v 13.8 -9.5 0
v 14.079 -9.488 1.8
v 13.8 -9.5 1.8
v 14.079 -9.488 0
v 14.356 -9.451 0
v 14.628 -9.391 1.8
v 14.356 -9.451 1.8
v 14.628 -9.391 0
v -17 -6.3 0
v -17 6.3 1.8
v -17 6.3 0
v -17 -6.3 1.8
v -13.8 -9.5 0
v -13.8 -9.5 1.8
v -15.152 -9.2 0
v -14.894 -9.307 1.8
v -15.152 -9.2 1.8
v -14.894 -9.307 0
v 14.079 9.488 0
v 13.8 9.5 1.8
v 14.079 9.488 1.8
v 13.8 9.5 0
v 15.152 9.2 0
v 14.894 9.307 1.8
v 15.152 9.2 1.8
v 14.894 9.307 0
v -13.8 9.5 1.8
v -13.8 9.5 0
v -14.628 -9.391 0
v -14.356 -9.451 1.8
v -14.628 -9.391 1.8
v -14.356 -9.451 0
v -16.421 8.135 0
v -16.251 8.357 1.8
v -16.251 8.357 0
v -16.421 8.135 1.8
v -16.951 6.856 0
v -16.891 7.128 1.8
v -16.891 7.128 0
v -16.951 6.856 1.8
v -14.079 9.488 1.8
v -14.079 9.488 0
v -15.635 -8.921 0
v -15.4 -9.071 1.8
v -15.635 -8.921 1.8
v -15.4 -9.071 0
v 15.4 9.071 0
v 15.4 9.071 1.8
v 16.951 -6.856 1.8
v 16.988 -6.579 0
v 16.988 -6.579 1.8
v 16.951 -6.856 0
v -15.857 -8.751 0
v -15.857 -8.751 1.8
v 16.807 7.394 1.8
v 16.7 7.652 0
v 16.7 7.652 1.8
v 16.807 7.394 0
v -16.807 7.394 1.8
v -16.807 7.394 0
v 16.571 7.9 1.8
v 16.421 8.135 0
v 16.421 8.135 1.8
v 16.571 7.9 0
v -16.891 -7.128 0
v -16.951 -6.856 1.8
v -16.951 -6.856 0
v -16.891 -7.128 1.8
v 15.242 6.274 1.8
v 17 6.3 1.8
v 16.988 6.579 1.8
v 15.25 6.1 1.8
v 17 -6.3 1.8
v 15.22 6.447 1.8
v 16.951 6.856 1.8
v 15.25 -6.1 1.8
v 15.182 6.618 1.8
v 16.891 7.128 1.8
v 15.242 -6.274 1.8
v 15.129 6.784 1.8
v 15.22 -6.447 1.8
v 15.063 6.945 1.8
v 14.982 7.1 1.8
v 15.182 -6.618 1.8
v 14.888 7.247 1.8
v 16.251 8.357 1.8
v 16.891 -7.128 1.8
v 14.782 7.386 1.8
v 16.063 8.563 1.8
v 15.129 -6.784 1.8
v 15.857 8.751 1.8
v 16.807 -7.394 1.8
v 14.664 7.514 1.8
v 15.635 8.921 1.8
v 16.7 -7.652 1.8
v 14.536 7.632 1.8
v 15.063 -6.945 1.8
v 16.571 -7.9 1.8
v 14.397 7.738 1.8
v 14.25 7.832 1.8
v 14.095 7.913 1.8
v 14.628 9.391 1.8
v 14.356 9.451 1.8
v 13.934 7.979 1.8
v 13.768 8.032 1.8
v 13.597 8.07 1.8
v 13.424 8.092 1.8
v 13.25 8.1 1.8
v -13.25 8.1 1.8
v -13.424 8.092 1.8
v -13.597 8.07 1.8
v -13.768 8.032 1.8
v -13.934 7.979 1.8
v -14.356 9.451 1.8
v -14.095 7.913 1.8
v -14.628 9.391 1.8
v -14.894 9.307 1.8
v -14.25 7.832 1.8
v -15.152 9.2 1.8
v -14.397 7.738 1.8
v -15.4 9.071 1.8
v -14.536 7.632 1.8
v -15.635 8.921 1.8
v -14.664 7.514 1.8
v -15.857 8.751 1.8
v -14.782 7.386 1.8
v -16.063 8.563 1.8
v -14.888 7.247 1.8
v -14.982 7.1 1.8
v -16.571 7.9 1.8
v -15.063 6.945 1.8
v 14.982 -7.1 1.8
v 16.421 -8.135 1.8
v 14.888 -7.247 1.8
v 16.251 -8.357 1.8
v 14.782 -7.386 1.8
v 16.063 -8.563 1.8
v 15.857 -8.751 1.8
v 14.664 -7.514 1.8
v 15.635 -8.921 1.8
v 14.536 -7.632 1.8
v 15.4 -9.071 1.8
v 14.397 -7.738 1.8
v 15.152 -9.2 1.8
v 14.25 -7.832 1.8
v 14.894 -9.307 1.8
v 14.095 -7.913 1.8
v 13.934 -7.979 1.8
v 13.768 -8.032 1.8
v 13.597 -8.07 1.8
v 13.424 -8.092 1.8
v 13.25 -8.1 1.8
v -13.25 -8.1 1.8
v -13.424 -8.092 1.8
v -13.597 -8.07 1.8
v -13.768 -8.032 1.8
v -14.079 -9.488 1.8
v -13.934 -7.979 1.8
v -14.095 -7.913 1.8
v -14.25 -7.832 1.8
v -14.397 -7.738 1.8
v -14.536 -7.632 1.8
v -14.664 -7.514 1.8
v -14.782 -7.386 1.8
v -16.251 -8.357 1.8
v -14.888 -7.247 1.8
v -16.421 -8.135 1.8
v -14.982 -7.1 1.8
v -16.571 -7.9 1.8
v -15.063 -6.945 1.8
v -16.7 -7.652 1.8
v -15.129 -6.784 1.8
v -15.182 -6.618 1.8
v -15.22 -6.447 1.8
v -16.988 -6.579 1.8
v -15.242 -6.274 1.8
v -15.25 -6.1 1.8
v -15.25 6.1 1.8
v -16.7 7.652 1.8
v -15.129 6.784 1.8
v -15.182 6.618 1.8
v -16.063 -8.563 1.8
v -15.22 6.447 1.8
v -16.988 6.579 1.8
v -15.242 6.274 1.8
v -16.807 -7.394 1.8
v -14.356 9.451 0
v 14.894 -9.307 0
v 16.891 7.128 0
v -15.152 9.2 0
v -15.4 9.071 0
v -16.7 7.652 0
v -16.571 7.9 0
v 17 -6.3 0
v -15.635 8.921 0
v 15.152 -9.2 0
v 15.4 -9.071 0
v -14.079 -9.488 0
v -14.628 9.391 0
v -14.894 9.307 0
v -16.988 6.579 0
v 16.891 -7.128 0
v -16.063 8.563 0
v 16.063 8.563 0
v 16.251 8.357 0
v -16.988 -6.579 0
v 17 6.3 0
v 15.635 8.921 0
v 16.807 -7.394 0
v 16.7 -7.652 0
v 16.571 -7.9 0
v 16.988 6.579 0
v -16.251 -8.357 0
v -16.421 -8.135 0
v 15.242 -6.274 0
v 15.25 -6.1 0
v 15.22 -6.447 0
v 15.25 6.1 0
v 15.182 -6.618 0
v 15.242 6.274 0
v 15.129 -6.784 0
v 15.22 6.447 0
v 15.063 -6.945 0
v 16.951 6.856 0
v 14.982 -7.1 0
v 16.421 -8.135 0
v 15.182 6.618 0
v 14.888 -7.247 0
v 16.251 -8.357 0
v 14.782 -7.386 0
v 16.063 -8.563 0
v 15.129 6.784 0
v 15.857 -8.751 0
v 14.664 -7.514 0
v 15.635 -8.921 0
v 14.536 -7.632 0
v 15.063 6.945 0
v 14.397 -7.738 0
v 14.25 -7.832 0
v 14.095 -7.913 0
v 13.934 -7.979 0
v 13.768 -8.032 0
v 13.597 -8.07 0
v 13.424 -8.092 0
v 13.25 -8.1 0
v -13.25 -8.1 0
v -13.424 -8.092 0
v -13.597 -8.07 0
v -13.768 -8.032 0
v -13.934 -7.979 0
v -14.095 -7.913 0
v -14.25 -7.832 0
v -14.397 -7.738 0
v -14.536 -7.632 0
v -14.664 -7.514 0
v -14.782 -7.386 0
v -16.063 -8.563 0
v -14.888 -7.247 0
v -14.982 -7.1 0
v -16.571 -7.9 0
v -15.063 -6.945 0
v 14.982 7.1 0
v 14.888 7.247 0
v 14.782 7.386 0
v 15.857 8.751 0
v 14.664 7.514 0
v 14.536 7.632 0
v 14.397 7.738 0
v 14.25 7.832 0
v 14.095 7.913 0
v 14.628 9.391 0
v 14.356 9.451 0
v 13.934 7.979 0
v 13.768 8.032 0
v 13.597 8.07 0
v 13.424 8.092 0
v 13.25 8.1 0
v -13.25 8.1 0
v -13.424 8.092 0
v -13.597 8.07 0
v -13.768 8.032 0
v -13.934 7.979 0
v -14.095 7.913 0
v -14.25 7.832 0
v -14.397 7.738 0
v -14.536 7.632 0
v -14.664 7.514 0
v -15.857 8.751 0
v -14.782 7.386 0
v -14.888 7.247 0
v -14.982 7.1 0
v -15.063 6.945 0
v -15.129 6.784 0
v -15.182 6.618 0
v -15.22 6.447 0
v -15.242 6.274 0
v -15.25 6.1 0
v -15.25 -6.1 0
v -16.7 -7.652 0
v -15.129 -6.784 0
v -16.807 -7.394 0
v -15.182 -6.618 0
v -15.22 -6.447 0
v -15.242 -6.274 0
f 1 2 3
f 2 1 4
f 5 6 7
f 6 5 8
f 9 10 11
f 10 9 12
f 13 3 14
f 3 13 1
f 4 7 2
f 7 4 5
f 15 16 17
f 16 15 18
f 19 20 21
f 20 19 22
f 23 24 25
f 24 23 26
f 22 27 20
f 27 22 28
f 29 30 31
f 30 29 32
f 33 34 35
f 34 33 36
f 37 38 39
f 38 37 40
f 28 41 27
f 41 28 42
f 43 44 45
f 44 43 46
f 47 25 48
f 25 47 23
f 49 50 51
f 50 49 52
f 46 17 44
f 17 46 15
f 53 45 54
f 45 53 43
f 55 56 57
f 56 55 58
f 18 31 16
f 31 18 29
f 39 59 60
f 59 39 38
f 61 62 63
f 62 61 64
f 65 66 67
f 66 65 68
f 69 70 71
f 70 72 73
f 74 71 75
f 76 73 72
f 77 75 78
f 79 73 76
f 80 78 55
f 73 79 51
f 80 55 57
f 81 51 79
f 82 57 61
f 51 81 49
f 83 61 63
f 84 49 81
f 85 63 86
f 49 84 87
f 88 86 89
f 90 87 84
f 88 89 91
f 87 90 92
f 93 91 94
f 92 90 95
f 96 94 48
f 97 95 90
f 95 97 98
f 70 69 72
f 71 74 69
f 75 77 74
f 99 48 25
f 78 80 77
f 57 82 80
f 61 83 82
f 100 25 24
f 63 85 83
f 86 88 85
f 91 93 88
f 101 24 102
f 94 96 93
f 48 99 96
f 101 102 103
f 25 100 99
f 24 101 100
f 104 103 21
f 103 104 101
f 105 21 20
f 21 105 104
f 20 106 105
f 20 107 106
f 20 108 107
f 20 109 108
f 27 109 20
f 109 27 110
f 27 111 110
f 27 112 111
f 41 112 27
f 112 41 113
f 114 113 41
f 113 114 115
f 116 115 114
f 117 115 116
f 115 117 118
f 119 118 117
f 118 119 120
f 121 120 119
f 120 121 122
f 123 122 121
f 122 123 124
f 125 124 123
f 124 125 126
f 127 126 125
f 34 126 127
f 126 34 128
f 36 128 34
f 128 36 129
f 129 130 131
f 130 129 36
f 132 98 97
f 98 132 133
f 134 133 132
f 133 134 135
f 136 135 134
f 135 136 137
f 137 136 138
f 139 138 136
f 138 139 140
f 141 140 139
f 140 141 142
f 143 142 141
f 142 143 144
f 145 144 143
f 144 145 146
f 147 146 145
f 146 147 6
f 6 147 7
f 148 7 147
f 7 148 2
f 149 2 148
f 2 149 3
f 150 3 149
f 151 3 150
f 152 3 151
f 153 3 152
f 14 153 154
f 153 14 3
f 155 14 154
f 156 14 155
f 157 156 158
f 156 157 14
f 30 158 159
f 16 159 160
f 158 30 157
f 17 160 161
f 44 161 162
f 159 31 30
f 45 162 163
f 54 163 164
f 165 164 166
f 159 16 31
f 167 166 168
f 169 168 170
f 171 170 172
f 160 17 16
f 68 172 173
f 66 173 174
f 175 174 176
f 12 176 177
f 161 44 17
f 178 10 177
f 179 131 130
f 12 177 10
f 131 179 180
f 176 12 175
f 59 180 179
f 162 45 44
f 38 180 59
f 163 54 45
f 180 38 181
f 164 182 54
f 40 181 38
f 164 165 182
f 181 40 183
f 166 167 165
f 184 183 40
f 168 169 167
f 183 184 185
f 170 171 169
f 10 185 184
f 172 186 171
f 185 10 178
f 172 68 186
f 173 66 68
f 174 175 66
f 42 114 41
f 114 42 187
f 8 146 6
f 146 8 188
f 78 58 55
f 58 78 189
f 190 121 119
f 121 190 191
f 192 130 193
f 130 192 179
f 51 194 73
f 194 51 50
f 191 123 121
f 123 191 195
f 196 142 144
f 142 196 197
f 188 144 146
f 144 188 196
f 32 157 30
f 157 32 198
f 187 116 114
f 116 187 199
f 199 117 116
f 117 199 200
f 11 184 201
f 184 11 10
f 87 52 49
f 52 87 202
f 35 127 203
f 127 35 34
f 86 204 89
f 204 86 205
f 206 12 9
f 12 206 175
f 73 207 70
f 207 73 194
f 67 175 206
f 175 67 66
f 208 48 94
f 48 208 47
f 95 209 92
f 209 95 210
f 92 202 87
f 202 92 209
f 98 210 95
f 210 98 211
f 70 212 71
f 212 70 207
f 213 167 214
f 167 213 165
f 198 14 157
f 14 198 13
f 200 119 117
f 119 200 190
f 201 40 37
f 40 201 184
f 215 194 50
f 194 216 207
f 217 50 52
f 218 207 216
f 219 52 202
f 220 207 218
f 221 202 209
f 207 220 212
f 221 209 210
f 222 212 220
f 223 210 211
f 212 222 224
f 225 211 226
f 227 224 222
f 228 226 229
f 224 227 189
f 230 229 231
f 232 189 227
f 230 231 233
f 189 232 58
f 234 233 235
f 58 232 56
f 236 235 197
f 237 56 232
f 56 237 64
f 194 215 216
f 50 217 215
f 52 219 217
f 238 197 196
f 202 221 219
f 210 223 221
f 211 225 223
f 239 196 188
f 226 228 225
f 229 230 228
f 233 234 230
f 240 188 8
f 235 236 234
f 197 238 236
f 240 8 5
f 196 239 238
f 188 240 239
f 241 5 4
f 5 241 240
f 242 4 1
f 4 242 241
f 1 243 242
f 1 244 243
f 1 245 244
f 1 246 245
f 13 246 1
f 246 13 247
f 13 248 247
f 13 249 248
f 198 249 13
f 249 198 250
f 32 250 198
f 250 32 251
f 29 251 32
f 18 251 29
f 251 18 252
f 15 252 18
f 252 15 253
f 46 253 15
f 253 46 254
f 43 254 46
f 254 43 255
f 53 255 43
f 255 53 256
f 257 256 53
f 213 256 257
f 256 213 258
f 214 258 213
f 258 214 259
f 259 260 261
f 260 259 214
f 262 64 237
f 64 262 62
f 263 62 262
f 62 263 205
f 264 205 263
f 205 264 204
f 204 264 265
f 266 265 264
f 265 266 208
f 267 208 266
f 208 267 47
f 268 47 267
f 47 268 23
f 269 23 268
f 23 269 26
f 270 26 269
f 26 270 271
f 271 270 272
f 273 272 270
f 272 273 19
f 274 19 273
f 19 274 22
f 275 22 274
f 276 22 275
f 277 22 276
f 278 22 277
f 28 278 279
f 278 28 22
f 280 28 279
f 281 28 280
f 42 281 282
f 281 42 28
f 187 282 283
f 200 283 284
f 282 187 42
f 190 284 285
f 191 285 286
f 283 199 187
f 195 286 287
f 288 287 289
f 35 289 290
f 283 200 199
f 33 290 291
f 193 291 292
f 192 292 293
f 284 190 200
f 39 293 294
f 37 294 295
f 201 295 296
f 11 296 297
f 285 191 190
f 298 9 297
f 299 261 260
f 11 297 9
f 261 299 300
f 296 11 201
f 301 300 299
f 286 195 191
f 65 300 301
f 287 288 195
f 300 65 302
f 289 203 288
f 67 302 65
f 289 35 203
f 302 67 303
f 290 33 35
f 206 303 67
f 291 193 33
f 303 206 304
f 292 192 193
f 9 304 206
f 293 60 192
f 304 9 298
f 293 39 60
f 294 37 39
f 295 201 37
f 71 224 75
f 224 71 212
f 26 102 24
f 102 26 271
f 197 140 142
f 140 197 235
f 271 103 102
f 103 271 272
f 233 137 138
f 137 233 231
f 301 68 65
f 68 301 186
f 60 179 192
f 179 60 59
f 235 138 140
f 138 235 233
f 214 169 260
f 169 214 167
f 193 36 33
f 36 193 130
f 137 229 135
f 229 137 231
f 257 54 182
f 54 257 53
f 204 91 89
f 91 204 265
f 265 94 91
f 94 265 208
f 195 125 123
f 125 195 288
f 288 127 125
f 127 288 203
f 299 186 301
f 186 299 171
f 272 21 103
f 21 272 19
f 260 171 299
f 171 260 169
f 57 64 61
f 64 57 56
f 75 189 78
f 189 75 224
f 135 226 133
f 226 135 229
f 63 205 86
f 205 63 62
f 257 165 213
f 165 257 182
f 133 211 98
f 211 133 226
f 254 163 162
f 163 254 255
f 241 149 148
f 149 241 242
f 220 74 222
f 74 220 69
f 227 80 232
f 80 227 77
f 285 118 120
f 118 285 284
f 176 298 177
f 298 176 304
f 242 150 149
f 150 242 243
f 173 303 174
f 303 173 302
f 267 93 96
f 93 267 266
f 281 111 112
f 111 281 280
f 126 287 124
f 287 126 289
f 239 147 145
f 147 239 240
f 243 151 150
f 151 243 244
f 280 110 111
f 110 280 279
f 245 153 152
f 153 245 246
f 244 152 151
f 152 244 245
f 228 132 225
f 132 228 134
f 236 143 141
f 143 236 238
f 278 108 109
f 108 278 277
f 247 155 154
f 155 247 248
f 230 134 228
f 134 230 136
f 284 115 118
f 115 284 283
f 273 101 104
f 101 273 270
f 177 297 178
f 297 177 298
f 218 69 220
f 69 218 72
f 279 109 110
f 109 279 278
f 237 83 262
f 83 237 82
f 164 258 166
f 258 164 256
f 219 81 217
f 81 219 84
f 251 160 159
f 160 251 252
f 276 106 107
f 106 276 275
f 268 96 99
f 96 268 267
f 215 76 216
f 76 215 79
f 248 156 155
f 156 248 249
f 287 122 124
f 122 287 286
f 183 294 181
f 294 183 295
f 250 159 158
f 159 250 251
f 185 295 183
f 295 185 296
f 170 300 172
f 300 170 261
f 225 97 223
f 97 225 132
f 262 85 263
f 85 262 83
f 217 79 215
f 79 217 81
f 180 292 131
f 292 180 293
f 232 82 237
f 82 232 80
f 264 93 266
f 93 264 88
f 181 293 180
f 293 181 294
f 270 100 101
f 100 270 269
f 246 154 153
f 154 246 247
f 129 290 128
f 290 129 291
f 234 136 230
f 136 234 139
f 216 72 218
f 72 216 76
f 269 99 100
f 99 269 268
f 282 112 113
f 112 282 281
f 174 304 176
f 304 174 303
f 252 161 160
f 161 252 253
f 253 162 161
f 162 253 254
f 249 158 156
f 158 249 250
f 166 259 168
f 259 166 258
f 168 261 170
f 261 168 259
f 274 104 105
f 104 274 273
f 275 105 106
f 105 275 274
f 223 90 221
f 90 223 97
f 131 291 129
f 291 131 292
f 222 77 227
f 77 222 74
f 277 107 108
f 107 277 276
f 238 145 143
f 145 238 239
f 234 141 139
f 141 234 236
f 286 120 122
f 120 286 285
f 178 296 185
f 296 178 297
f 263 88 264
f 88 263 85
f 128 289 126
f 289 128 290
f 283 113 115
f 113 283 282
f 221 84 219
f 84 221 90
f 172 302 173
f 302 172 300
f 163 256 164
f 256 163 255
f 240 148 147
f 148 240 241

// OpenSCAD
// file: woli_config.scad
// ============================================================
// WOLI V1.1 AUDITED FINAL — MASTER PARAMETERS
// Units: mm
// ============================================================

$fn = 72;

// ---------- GLOBAL ----------
fit_clearance = 0.40;
wall = 3.0;
floor_t = 5.0;
cover_t = 2.8;
shell_r = 10.0;

m3_clear = 3.4;
m3_pilot_d = 2.8;
m3_pilot_depth = 4.2;

tie_slot_w = 3.8;
tie_slot_l = 18;

// ---------- BODY ----------
body_w = 170;
body_l = 90;
chassis_h = 31;
top_h = 34;

top_upper_w = 162;
top_upper_l = 80;
top_upper_r = 9;

// ---------- N20 DRIVE ----------
wheel_d = 43;
wheel_w = 17.5;

n20_x = 12;
n20_y = 33;
n20_z = 10;

n20_bracket_x = 25;
n20_bracket_y = 8.5;
n20_bracket_z = 11.5;
n20_bracket_hole_cc = 17;      // approx; slots absorb error

wheel_axis_ground_z = wheel_d/2; // reference only; actual chassis ground plane requires hardware check
wheel_opening_l = 25;            // side wheel cutout depth (Y), mm
motor_y = -body_l/2 + body_l/3;  // wheel center: 1/3 body depth in from front (-Y)
motor_slot_len = 8;
motor_bracket_zone_x = body_w/2 - 18;

// ---------- BALL CASTER ----------
caster_w = 22;
caster_l = 17;
caster_h = 15;
caster_ball_d_visual_ref = 11.5; // photo-only reference; not used for fit
caster_dock_y = body_l/2 - 21;

caster_body_clear = 0.7;
caster_retainer_t = 3.0;
caster_retainer_screw_cc = 27;

caster_mount_x = 15;
caster_mount_y = 12;
caster_floor_open = 18.5;

// ---------- MAIN PCB ----------
pcb_w = 50;
pcb_l = 70;
pcb_stack_h = 15;

pcb_tray_w = 56;
pcb_tray_l = 76;
pcb_mount_cc_x = 44;
pcb_mount_cc_y = 64;

// ---------- MG90S ----------
servo_a = 32.4;
servo_b = 32.5;
servo_c = 12;
servo_fit = 0.7;

// ---------- LIMIT SWITCH ----------
limit_w = 21;
limit_l = 23;
limit_h = 6;

// ---------- VL53L0X ----------
tof_w = 10.7;
tof_l = 25;
tof_h = 11.5;
tof_rail_clear = 0.7;

tof_bezel_w = 34;
tof_bezel_h = 19;

// ---------- PHONE HOLDER / NECK ----------
phone_ball_d = 18.0;            // physical socket fit still required
neck_h = 30;
neck_base_w = 54;
neck_base_l = 42;
neck_base_h = 5;
neck_hole_x = 38;
neck_hole_y = 26;

neck_recess_w = 62;
neck_recess_l = 50;
neck_recess_d = 1.2;

neck_pilot_d = 2.8;
neck_pilot_depth = 7.0;

// reference phone clearance envelope only
phone_ref_w = 165;
phone_ref_h = 82;
phone_ref_t = 12;

// ---------- KLIFE PD-Q2 BATTERY ----------
battery_w = 68;
battery_l = 143;
battery_h = 11;
battery_mass_g = 205;

battery_fit_clear = 0.8;
battery_tray_w = 84;
battery_tray_l = 146;
battery_tray_t = 2.4;
battery_rail_t = 2.5;
battery_rail_h = 5.5;
battery_center_y = -18;

battery_tray_mount_x = 39;
battery_tray_mount_y = 55;

// ---------- UPPER ELECTRONICS DECK ----------
bridge_w = 122;
bridge_l = 94;
bridge_t = 3.0;
bridge_leg_h = 20;
bridge_leg_x = 56;
bridge_leg_y = 36;

module_boss_h = 4.5;
module_boss_d = 8.0;
module_pilot_d = 2.8;

pcb_deck_cx = -25;
pcb_deck_cy = 0;

tb_deck_cx = 34;
tb_deck_cy = 17;

usbc_deck_cx = 36;
usbc_deck_cy = -24;

// ---------- TB6612FNG HW-166 ----------
tb6612_w = 26;
tb6612_l = 26;
tb6612_clear = 0.6;

// total installed height is intentionally not hard-coded

// ---------- USB-C BREAKOUT ----------
usbc_board_w = 12;
usbc_board_l = 15;
usbc_connector_h = 4.2;
usbc_clear = 0.6;

// ---------- TOP COVER INTERFACE ----------
cover_skirt_depth = 4.0;
cover_skirt_clear = 0.8;
cover_skirt_t = 2.5;

cover_side_screw_y = 55 * body_l / 190;
cover_side_screw_z = -2.5;

rear_service_w = 42;
rear_service_h = 14;
rear_hatch_screw_x = 19;
rear_hatch_center_z = 10;

// ---------- CABLE MANAGEMENT ----------
cable_bridge_w = 24;
cable_bridge_l = 14;
cable_bridge_h = 8;
cable_bridge_channel = 8;

// ---------- SERVO LOCK FRAMEWORK ----------
lock_angle_deg = 90;
unlock_angle_deg = 10;

lock_plate_d = 28;
lock_arm_w = 10;
lock_arm_t = 4.0;
lock_reach = 22;
lock_tip_d = 10;

horn_center_clear_d = 7.0;
horn_slot_d = 2.4;              // physical stock-horn check required
horn_slot_len = 8.0;
horn_slot_radius = 8.0;

lock_pad_t = 2.0;
lock_pad_d = 11.0;
// file: woli_lib.scad
include <woli_config.scad>;

module rr2d(w,l,r){
    offset(r=r) square([w-2*r,l-2*r], center=true);
}

module rplate(w,l,h,r){
    linear_extrude(height=h) rr2d(w,l,r);
}

module rshell(w,l,h,r,t,bottom){
    difference(){
        rplate(w,l,h,r);
        translate([0,0,bottom])
            rplate(w-2*t,l-2*t,h,r-t);
    }
}

module slot2d(len,d){
    hull(){
        translate([-len/2,0]) circle(d=d);
        translate([ len/2,0]) circle(d=d);
    }
}

module slot3d(len,d,h){
    linear_extrude(height=h) slot2d(len,d);
}

module tie_slot(h=5){
    rplate(tie_slot_w,tie_slot_l,h,1.2);
}

module body_screw_pattern(h=20){
    for(x=[-screw_x,screw_x])
        for(y=[-screw_y,screw_y])
            translate([x,y,-1])
                cylinder(h=h,d=m3_clear);
}

module body_bosses(h=20){
    for(x=[-screw_x,screw_x])
        for(y=[-screw_y,screw_y])
            translate([x,y,0])
                cylinder(h=h,d=m3_boss_d);
}


// Closed-top shell for removable upper cover.
// Leaves the underside open and preserves a roof thickness.
module top_shell(w,l,h,r,t){
    difference(){
        rplate(w,l,h,r);
        translate([0,0,-0.1])
            rplate(w-2*t,l-2*t,h-t+0.1,r-t);
    }
}


// Tapered rounded solid built from two rounded plates.
// Useful for product-like enclosure shoulders.
module tapered_rounded_solid(w0,l0,w1,l1,h,r0,r1){
    hull(){
        rplate(w0,l0,0.8,r0);
        translate([0,0,h-0.8])
            rplate(w1,l1,0.8,r1);
    }
}

// Open-bottom tapered cover with closed roof.
module tapered_top_shell(w0,l0,w1,l1,h,r0,r1,t){
    difference(){
        tapered_rounded_solid(w0,l0,w1,l1,h,r0,r1);
        translate([0,0,-0.1])
            tapered_rounded_solid(
                w0-2*t,l0-2*t,
                w1-2*t,l1-2*t,
                h-t+0.1,
                max(r0-t,1),max(r1-t,1)
            );
    }
}
// main file
include <woli_lib.scad>;

// ============================================================
// 17 TOF FRONT BEZEL V0.4
// Cosmetic/service bezel around the single rectangular ToF window.
// Thin separate piece so appearance can be revised without reprinting cover.
// No lens/camera styling.
// ============================================================

bezel_t = 1.8;
opening_w = tof_l + 5.5;
opening_h = tof_w + 5.5;

difference(){
    rplate(tof_bezel_w,tof_bezel_h,bezel_t,3.2);
    translate([0,0,-0.1])
        rplate(opening_w,opening_h,bezel_t+0.3,2.0);
}
